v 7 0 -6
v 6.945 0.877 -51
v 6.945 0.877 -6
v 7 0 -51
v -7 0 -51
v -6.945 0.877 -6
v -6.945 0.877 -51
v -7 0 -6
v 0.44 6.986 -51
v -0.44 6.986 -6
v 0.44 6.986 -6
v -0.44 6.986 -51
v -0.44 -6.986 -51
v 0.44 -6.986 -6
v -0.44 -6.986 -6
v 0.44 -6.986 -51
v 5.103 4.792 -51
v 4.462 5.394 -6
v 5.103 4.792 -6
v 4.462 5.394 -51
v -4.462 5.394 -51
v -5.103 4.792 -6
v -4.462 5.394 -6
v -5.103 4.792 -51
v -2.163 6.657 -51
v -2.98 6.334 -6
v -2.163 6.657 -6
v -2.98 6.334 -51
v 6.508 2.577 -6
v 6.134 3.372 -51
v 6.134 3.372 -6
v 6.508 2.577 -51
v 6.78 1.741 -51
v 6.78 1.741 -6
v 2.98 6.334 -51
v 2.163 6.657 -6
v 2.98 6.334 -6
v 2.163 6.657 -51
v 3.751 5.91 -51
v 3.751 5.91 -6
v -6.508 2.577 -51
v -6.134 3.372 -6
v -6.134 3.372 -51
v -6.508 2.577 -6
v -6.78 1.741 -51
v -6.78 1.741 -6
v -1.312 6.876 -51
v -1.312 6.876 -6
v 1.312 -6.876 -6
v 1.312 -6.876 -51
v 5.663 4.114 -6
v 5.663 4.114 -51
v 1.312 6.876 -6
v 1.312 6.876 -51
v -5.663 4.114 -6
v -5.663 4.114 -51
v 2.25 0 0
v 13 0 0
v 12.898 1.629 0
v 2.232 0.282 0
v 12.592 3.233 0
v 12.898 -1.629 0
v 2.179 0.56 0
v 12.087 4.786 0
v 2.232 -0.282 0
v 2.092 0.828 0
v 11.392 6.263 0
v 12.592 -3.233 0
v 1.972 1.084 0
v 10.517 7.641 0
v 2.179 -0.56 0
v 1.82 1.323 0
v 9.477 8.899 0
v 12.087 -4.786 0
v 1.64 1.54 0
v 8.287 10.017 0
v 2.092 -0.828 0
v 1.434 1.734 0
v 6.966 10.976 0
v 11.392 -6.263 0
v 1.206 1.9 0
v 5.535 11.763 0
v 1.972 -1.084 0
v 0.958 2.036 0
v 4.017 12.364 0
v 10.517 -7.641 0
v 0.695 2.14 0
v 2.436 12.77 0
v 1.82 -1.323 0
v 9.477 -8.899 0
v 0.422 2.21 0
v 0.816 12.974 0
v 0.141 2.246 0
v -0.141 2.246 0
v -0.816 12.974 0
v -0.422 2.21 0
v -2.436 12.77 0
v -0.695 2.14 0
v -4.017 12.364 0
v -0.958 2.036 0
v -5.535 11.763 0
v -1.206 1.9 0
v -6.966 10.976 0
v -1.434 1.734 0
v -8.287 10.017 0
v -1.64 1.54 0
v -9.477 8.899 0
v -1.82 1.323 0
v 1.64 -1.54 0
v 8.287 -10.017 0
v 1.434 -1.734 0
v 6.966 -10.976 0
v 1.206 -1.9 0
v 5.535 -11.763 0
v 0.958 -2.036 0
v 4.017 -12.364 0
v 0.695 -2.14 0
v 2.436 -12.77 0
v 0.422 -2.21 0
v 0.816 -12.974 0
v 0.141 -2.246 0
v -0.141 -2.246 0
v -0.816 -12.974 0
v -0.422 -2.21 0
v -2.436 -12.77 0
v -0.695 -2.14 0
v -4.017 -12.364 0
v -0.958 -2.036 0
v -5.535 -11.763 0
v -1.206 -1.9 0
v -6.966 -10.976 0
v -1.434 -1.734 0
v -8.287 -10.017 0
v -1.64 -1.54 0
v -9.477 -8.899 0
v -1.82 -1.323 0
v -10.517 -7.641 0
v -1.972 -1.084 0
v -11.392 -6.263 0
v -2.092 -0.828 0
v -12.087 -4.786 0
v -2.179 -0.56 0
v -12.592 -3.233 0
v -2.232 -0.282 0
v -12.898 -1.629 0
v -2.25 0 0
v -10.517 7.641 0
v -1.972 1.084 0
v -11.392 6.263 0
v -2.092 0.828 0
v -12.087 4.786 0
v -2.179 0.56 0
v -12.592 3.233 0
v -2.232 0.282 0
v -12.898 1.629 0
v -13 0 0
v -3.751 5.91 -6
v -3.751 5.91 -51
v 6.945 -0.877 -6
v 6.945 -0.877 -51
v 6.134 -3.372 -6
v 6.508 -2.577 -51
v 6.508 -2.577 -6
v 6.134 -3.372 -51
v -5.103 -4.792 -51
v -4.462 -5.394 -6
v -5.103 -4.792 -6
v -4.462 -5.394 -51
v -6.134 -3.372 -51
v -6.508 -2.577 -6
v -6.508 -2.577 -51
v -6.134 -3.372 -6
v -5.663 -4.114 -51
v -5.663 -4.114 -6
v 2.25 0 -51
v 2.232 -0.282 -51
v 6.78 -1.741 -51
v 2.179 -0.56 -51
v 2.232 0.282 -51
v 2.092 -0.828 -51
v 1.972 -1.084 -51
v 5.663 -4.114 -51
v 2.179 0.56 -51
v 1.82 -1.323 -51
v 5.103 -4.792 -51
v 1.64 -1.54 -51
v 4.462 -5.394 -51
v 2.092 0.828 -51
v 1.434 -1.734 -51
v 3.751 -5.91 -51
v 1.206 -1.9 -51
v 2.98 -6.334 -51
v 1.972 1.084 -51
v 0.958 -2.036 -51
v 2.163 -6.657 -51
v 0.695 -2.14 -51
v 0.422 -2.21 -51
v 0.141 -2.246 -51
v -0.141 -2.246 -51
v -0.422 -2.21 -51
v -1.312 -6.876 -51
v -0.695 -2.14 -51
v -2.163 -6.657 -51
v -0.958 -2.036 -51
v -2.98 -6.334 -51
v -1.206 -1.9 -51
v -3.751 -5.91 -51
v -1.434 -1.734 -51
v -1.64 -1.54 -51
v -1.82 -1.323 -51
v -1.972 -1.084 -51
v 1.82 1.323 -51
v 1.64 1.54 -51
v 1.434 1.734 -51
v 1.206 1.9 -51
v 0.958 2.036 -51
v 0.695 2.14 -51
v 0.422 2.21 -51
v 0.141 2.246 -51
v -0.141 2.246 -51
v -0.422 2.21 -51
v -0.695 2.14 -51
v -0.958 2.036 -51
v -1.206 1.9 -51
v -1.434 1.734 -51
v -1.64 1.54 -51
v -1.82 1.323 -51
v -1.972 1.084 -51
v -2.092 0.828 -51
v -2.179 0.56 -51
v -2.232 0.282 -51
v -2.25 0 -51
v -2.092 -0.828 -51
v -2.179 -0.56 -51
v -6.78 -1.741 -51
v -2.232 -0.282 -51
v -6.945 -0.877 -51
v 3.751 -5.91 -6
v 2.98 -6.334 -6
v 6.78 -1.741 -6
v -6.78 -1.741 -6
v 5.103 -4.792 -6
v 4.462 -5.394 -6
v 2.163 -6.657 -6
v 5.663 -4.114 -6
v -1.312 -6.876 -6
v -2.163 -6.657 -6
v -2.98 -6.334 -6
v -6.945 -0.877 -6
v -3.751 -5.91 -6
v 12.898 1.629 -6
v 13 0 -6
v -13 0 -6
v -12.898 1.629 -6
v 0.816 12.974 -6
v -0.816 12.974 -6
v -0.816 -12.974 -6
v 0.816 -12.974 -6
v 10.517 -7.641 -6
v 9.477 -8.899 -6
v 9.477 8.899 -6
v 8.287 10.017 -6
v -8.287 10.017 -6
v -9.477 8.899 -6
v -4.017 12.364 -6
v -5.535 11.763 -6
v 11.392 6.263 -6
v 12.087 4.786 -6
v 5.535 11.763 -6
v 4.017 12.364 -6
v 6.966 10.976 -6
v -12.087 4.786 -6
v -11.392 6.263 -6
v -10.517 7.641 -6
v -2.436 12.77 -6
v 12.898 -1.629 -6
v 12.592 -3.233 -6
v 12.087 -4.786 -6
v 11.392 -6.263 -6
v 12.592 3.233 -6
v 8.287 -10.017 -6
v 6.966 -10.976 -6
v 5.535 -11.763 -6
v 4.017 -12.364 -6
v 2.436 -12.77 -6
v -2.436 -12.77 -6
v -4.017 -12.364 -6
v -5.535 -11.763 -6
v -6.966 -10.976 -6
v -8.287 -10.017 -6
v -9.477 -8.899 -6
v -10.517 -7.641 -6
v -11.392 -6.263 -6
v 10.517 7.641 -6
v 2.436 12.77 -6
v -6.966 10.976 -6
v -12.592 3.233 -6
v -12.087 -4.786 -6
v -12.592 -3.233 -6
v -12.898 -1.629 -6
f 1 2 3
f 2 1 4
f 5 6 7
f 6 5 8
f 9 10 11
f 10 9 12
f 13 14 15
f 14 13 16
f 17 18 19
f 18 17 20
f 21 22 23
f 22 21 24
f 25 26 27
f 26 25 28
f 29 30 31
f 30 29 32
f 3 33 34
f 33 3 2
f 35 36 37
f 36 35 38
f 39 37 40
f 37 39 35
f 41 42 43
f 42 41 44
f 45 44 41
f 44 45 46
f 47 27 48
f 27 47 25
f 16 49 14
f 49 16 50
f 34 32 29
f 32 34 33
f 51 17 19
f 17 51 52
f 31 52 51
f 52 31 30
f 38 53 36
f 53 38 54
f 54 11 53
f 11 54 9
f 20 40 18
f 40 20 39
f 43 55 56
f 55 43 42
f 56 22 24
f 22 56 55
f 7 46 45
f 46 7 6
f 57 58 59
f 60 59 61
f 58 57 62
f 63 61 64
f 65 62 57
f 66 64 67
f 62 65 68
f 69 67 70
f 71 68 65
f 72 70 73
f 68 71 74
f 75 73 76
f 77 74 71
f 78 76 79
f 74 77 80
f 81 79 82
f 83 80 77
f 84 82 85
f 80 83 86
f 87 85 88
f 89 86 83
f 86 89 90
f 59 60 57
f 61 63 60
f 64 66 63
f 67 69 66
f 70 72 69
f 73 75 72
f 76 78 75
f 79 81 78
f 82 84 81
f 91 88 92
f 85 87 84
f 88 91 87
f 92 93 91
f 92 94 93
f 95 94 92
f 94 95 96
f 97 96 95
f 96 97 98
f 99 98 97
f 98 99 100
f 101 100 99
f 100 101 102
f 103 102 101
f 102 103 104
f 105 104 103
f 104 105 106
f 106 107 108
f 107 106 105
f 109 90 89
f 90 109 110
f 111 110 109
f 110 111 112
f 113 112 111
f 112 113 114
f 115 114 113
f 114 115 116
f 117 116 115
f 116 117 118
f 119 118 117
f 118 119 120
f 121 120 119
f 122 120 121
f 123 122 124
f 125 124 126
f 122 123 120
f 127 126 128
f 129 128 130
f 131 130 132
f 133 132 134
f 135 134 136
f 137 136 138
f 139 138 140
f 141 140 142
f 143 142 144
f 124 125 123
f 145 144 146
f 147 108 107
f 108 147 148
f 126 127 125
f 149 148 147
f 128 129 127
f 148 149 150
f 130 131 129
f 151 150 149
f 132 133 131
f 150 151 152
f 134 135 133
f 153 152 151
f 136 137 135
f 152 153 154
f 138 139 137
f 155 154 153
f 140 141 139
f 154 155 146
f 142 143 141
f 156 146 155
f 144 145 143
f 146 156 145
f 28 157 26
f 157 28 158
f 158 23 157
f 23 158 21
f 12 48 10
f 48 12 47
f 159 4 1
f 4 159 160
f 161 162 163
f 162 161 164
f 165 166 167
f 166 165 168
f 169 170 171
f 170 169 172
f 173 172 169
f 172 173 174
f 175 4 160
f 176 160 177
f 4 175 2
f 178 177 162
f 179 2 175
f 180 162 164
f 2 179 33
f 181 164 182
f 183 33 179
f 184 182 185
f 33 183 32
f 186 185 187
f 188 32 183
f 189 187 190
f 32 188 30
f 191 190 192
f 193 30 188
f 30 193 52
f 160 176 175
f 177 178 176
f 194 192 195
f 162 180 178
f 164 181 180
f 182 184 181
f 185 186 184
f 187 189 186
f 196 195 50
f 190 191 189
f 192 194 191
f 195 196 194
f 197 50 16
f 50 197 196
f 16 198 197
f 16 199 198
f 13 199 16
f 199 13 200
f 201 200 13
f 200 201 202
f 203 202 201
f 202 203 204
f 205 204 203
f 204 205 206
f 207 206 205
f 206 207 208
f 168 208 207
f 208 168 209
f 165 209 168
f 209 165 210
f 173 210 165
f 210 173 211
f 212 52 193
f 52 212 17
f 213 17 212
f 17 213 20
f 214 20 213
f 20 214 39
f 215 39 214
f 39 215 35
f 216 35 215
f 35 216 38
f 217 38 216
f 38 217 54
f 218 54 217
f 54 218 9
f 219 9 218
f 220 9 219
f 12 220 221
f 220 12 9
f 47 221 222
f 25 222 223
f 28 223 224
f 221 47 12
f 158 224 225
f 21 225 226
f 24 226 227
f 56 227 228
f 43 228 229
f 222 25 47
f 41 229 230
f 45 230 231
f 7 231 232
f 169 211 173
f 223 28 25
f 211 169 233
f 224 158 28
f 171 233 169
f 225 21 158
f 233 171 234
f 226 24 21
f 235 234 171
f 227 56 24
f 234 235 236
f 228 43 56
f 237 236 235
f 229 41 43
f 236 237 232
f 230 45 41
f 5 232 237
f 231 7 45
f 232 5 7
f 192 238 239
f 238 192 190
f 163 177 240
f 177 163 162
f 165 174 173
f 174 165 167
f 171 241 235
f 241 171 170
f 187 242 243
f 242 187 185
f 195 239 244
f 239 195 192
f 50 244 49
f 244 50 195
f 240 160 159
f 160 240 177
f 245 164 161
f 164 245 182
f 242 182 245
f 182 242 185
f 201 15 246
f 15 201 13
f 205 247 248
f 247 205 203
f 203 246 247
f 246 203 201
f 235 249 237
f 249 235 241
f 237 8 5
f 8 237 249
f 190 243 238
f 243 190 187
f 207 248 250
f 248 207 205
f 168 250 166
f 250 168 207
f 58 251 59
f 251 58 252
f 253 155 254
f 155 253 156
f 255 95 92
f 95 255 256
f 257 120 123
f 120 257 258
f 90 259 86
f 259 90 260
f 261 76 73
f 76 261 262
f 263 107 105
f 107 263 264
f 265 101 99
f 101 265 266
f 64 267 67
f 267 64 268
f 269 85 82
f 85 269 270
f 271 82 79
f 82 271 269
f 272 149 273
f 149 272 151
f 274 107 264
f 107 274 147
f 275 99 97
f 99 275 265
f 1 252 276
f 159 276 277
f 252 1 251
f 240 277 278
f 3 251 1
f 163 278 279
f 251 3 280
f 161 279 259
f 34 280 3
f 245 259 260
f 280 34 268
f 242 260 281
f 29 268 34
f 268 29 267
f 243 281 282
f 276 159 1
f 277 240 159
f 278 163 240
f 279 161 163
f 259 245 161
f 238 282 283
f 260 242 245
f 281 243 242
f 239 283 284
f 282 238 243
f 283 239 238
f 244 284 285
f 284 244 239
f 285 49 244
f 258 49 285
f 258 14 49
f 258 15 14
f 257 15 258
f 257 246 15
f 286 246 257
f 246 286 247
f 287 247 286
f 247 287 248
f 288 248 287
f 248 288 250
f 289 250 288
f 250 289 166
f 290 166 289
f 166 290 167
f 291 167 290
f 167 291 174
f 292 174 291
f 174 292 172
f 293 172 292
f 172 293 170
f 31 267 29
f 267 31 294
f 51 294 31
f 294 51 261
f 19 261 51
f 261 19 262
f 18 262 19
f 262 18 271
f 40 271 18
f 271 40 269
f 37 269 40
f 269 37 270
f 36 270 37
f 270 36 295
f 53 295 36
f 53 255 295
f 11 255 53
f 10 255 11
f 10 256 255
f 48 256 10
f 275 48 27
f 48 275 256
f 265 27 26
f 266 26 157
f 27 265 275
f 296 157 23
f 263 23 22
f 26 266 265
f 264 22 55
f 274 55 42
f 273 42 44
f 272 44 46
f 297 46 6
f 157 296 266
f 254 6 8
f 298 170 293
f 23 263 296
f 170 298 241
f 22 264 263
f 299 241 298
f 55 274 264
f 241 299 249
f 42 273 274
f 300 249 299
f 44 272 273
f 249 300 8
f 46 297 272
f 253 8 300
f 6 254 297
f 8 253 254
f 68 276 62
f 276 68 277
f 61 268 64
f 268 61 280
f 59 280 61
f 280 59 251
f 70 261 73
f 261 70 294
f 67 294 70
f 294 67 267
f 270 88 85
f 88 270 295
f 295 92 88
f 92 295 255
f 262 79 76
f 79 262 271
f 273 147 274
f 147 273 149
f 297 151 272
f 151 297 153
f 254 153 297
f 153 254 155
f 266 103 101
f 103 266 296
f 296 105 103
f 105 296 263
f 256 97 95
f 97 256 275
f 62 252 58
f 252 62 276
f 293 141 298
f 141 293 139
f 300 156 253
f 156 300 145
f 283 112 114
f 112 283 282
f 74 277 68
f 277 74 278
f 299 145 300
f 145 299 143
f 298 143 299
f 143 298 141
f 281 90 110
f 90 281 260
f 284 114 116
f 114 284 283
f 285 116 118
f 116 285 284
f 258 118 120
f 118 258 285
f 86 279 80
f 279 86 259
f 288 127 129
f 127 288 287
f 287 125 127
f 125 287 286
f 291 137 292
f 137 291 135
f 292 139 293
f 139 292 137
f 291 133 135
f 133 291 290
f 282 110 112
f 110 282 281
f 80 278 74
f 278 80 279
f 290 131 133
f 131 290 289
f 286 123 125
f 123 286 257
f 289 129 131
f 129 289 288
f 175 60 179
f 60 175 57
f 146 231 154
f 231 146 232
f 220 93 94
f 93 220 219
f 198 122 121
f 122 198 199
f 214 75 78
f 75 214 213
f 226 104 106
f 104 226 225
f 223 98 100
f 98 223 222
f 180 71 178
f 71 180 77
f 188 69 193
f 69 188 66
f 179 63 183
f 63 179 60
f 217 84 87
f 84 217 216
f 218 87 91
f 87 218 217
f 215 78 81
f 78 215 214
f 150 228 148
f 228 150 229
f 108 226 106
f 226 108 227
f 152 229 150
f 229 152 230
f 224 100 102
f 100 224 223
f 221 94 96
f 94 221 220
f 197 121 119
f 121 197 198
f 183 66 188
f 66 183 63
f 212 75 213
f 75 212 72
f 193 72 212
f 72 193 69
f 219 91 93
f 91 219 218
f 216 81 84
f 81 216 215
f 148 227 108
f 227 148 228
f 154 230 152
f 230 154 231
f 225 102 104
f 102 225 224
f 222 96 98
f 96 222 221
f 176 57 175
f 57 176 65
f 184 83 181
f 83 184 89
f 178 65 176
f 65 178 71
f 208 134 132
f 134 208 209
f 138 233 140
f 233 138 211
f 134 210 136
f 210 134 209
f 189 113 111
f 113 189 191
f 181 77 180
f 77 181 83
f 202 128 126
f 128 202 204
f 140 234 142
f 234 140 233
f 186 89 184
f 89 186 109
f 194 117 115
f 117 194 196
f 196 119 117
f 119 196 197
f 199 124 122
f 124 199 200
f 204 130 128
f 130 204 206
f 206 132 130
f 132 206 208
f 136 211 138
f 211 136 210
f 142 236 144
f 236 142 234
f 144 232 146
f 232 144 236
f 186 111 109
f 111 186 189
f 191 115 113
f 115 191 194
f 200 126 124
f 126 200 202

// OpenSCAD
$fn = 50;


difference() {
	union() {
		translate(v = [0, 0, -51.0000000000]) {
			cylinder(h = 51, r = 7.0000000000);
		}
		translate(v = [0, 0, -6.0000000000]) {
			cylinder(h = 6, r = 13.0000000000);
		}
	}
	union() {
		#translate(v = [0, 0, -51]) {
			cylinder(h = 51, r = 2.2500000000);
		}
	}
}
